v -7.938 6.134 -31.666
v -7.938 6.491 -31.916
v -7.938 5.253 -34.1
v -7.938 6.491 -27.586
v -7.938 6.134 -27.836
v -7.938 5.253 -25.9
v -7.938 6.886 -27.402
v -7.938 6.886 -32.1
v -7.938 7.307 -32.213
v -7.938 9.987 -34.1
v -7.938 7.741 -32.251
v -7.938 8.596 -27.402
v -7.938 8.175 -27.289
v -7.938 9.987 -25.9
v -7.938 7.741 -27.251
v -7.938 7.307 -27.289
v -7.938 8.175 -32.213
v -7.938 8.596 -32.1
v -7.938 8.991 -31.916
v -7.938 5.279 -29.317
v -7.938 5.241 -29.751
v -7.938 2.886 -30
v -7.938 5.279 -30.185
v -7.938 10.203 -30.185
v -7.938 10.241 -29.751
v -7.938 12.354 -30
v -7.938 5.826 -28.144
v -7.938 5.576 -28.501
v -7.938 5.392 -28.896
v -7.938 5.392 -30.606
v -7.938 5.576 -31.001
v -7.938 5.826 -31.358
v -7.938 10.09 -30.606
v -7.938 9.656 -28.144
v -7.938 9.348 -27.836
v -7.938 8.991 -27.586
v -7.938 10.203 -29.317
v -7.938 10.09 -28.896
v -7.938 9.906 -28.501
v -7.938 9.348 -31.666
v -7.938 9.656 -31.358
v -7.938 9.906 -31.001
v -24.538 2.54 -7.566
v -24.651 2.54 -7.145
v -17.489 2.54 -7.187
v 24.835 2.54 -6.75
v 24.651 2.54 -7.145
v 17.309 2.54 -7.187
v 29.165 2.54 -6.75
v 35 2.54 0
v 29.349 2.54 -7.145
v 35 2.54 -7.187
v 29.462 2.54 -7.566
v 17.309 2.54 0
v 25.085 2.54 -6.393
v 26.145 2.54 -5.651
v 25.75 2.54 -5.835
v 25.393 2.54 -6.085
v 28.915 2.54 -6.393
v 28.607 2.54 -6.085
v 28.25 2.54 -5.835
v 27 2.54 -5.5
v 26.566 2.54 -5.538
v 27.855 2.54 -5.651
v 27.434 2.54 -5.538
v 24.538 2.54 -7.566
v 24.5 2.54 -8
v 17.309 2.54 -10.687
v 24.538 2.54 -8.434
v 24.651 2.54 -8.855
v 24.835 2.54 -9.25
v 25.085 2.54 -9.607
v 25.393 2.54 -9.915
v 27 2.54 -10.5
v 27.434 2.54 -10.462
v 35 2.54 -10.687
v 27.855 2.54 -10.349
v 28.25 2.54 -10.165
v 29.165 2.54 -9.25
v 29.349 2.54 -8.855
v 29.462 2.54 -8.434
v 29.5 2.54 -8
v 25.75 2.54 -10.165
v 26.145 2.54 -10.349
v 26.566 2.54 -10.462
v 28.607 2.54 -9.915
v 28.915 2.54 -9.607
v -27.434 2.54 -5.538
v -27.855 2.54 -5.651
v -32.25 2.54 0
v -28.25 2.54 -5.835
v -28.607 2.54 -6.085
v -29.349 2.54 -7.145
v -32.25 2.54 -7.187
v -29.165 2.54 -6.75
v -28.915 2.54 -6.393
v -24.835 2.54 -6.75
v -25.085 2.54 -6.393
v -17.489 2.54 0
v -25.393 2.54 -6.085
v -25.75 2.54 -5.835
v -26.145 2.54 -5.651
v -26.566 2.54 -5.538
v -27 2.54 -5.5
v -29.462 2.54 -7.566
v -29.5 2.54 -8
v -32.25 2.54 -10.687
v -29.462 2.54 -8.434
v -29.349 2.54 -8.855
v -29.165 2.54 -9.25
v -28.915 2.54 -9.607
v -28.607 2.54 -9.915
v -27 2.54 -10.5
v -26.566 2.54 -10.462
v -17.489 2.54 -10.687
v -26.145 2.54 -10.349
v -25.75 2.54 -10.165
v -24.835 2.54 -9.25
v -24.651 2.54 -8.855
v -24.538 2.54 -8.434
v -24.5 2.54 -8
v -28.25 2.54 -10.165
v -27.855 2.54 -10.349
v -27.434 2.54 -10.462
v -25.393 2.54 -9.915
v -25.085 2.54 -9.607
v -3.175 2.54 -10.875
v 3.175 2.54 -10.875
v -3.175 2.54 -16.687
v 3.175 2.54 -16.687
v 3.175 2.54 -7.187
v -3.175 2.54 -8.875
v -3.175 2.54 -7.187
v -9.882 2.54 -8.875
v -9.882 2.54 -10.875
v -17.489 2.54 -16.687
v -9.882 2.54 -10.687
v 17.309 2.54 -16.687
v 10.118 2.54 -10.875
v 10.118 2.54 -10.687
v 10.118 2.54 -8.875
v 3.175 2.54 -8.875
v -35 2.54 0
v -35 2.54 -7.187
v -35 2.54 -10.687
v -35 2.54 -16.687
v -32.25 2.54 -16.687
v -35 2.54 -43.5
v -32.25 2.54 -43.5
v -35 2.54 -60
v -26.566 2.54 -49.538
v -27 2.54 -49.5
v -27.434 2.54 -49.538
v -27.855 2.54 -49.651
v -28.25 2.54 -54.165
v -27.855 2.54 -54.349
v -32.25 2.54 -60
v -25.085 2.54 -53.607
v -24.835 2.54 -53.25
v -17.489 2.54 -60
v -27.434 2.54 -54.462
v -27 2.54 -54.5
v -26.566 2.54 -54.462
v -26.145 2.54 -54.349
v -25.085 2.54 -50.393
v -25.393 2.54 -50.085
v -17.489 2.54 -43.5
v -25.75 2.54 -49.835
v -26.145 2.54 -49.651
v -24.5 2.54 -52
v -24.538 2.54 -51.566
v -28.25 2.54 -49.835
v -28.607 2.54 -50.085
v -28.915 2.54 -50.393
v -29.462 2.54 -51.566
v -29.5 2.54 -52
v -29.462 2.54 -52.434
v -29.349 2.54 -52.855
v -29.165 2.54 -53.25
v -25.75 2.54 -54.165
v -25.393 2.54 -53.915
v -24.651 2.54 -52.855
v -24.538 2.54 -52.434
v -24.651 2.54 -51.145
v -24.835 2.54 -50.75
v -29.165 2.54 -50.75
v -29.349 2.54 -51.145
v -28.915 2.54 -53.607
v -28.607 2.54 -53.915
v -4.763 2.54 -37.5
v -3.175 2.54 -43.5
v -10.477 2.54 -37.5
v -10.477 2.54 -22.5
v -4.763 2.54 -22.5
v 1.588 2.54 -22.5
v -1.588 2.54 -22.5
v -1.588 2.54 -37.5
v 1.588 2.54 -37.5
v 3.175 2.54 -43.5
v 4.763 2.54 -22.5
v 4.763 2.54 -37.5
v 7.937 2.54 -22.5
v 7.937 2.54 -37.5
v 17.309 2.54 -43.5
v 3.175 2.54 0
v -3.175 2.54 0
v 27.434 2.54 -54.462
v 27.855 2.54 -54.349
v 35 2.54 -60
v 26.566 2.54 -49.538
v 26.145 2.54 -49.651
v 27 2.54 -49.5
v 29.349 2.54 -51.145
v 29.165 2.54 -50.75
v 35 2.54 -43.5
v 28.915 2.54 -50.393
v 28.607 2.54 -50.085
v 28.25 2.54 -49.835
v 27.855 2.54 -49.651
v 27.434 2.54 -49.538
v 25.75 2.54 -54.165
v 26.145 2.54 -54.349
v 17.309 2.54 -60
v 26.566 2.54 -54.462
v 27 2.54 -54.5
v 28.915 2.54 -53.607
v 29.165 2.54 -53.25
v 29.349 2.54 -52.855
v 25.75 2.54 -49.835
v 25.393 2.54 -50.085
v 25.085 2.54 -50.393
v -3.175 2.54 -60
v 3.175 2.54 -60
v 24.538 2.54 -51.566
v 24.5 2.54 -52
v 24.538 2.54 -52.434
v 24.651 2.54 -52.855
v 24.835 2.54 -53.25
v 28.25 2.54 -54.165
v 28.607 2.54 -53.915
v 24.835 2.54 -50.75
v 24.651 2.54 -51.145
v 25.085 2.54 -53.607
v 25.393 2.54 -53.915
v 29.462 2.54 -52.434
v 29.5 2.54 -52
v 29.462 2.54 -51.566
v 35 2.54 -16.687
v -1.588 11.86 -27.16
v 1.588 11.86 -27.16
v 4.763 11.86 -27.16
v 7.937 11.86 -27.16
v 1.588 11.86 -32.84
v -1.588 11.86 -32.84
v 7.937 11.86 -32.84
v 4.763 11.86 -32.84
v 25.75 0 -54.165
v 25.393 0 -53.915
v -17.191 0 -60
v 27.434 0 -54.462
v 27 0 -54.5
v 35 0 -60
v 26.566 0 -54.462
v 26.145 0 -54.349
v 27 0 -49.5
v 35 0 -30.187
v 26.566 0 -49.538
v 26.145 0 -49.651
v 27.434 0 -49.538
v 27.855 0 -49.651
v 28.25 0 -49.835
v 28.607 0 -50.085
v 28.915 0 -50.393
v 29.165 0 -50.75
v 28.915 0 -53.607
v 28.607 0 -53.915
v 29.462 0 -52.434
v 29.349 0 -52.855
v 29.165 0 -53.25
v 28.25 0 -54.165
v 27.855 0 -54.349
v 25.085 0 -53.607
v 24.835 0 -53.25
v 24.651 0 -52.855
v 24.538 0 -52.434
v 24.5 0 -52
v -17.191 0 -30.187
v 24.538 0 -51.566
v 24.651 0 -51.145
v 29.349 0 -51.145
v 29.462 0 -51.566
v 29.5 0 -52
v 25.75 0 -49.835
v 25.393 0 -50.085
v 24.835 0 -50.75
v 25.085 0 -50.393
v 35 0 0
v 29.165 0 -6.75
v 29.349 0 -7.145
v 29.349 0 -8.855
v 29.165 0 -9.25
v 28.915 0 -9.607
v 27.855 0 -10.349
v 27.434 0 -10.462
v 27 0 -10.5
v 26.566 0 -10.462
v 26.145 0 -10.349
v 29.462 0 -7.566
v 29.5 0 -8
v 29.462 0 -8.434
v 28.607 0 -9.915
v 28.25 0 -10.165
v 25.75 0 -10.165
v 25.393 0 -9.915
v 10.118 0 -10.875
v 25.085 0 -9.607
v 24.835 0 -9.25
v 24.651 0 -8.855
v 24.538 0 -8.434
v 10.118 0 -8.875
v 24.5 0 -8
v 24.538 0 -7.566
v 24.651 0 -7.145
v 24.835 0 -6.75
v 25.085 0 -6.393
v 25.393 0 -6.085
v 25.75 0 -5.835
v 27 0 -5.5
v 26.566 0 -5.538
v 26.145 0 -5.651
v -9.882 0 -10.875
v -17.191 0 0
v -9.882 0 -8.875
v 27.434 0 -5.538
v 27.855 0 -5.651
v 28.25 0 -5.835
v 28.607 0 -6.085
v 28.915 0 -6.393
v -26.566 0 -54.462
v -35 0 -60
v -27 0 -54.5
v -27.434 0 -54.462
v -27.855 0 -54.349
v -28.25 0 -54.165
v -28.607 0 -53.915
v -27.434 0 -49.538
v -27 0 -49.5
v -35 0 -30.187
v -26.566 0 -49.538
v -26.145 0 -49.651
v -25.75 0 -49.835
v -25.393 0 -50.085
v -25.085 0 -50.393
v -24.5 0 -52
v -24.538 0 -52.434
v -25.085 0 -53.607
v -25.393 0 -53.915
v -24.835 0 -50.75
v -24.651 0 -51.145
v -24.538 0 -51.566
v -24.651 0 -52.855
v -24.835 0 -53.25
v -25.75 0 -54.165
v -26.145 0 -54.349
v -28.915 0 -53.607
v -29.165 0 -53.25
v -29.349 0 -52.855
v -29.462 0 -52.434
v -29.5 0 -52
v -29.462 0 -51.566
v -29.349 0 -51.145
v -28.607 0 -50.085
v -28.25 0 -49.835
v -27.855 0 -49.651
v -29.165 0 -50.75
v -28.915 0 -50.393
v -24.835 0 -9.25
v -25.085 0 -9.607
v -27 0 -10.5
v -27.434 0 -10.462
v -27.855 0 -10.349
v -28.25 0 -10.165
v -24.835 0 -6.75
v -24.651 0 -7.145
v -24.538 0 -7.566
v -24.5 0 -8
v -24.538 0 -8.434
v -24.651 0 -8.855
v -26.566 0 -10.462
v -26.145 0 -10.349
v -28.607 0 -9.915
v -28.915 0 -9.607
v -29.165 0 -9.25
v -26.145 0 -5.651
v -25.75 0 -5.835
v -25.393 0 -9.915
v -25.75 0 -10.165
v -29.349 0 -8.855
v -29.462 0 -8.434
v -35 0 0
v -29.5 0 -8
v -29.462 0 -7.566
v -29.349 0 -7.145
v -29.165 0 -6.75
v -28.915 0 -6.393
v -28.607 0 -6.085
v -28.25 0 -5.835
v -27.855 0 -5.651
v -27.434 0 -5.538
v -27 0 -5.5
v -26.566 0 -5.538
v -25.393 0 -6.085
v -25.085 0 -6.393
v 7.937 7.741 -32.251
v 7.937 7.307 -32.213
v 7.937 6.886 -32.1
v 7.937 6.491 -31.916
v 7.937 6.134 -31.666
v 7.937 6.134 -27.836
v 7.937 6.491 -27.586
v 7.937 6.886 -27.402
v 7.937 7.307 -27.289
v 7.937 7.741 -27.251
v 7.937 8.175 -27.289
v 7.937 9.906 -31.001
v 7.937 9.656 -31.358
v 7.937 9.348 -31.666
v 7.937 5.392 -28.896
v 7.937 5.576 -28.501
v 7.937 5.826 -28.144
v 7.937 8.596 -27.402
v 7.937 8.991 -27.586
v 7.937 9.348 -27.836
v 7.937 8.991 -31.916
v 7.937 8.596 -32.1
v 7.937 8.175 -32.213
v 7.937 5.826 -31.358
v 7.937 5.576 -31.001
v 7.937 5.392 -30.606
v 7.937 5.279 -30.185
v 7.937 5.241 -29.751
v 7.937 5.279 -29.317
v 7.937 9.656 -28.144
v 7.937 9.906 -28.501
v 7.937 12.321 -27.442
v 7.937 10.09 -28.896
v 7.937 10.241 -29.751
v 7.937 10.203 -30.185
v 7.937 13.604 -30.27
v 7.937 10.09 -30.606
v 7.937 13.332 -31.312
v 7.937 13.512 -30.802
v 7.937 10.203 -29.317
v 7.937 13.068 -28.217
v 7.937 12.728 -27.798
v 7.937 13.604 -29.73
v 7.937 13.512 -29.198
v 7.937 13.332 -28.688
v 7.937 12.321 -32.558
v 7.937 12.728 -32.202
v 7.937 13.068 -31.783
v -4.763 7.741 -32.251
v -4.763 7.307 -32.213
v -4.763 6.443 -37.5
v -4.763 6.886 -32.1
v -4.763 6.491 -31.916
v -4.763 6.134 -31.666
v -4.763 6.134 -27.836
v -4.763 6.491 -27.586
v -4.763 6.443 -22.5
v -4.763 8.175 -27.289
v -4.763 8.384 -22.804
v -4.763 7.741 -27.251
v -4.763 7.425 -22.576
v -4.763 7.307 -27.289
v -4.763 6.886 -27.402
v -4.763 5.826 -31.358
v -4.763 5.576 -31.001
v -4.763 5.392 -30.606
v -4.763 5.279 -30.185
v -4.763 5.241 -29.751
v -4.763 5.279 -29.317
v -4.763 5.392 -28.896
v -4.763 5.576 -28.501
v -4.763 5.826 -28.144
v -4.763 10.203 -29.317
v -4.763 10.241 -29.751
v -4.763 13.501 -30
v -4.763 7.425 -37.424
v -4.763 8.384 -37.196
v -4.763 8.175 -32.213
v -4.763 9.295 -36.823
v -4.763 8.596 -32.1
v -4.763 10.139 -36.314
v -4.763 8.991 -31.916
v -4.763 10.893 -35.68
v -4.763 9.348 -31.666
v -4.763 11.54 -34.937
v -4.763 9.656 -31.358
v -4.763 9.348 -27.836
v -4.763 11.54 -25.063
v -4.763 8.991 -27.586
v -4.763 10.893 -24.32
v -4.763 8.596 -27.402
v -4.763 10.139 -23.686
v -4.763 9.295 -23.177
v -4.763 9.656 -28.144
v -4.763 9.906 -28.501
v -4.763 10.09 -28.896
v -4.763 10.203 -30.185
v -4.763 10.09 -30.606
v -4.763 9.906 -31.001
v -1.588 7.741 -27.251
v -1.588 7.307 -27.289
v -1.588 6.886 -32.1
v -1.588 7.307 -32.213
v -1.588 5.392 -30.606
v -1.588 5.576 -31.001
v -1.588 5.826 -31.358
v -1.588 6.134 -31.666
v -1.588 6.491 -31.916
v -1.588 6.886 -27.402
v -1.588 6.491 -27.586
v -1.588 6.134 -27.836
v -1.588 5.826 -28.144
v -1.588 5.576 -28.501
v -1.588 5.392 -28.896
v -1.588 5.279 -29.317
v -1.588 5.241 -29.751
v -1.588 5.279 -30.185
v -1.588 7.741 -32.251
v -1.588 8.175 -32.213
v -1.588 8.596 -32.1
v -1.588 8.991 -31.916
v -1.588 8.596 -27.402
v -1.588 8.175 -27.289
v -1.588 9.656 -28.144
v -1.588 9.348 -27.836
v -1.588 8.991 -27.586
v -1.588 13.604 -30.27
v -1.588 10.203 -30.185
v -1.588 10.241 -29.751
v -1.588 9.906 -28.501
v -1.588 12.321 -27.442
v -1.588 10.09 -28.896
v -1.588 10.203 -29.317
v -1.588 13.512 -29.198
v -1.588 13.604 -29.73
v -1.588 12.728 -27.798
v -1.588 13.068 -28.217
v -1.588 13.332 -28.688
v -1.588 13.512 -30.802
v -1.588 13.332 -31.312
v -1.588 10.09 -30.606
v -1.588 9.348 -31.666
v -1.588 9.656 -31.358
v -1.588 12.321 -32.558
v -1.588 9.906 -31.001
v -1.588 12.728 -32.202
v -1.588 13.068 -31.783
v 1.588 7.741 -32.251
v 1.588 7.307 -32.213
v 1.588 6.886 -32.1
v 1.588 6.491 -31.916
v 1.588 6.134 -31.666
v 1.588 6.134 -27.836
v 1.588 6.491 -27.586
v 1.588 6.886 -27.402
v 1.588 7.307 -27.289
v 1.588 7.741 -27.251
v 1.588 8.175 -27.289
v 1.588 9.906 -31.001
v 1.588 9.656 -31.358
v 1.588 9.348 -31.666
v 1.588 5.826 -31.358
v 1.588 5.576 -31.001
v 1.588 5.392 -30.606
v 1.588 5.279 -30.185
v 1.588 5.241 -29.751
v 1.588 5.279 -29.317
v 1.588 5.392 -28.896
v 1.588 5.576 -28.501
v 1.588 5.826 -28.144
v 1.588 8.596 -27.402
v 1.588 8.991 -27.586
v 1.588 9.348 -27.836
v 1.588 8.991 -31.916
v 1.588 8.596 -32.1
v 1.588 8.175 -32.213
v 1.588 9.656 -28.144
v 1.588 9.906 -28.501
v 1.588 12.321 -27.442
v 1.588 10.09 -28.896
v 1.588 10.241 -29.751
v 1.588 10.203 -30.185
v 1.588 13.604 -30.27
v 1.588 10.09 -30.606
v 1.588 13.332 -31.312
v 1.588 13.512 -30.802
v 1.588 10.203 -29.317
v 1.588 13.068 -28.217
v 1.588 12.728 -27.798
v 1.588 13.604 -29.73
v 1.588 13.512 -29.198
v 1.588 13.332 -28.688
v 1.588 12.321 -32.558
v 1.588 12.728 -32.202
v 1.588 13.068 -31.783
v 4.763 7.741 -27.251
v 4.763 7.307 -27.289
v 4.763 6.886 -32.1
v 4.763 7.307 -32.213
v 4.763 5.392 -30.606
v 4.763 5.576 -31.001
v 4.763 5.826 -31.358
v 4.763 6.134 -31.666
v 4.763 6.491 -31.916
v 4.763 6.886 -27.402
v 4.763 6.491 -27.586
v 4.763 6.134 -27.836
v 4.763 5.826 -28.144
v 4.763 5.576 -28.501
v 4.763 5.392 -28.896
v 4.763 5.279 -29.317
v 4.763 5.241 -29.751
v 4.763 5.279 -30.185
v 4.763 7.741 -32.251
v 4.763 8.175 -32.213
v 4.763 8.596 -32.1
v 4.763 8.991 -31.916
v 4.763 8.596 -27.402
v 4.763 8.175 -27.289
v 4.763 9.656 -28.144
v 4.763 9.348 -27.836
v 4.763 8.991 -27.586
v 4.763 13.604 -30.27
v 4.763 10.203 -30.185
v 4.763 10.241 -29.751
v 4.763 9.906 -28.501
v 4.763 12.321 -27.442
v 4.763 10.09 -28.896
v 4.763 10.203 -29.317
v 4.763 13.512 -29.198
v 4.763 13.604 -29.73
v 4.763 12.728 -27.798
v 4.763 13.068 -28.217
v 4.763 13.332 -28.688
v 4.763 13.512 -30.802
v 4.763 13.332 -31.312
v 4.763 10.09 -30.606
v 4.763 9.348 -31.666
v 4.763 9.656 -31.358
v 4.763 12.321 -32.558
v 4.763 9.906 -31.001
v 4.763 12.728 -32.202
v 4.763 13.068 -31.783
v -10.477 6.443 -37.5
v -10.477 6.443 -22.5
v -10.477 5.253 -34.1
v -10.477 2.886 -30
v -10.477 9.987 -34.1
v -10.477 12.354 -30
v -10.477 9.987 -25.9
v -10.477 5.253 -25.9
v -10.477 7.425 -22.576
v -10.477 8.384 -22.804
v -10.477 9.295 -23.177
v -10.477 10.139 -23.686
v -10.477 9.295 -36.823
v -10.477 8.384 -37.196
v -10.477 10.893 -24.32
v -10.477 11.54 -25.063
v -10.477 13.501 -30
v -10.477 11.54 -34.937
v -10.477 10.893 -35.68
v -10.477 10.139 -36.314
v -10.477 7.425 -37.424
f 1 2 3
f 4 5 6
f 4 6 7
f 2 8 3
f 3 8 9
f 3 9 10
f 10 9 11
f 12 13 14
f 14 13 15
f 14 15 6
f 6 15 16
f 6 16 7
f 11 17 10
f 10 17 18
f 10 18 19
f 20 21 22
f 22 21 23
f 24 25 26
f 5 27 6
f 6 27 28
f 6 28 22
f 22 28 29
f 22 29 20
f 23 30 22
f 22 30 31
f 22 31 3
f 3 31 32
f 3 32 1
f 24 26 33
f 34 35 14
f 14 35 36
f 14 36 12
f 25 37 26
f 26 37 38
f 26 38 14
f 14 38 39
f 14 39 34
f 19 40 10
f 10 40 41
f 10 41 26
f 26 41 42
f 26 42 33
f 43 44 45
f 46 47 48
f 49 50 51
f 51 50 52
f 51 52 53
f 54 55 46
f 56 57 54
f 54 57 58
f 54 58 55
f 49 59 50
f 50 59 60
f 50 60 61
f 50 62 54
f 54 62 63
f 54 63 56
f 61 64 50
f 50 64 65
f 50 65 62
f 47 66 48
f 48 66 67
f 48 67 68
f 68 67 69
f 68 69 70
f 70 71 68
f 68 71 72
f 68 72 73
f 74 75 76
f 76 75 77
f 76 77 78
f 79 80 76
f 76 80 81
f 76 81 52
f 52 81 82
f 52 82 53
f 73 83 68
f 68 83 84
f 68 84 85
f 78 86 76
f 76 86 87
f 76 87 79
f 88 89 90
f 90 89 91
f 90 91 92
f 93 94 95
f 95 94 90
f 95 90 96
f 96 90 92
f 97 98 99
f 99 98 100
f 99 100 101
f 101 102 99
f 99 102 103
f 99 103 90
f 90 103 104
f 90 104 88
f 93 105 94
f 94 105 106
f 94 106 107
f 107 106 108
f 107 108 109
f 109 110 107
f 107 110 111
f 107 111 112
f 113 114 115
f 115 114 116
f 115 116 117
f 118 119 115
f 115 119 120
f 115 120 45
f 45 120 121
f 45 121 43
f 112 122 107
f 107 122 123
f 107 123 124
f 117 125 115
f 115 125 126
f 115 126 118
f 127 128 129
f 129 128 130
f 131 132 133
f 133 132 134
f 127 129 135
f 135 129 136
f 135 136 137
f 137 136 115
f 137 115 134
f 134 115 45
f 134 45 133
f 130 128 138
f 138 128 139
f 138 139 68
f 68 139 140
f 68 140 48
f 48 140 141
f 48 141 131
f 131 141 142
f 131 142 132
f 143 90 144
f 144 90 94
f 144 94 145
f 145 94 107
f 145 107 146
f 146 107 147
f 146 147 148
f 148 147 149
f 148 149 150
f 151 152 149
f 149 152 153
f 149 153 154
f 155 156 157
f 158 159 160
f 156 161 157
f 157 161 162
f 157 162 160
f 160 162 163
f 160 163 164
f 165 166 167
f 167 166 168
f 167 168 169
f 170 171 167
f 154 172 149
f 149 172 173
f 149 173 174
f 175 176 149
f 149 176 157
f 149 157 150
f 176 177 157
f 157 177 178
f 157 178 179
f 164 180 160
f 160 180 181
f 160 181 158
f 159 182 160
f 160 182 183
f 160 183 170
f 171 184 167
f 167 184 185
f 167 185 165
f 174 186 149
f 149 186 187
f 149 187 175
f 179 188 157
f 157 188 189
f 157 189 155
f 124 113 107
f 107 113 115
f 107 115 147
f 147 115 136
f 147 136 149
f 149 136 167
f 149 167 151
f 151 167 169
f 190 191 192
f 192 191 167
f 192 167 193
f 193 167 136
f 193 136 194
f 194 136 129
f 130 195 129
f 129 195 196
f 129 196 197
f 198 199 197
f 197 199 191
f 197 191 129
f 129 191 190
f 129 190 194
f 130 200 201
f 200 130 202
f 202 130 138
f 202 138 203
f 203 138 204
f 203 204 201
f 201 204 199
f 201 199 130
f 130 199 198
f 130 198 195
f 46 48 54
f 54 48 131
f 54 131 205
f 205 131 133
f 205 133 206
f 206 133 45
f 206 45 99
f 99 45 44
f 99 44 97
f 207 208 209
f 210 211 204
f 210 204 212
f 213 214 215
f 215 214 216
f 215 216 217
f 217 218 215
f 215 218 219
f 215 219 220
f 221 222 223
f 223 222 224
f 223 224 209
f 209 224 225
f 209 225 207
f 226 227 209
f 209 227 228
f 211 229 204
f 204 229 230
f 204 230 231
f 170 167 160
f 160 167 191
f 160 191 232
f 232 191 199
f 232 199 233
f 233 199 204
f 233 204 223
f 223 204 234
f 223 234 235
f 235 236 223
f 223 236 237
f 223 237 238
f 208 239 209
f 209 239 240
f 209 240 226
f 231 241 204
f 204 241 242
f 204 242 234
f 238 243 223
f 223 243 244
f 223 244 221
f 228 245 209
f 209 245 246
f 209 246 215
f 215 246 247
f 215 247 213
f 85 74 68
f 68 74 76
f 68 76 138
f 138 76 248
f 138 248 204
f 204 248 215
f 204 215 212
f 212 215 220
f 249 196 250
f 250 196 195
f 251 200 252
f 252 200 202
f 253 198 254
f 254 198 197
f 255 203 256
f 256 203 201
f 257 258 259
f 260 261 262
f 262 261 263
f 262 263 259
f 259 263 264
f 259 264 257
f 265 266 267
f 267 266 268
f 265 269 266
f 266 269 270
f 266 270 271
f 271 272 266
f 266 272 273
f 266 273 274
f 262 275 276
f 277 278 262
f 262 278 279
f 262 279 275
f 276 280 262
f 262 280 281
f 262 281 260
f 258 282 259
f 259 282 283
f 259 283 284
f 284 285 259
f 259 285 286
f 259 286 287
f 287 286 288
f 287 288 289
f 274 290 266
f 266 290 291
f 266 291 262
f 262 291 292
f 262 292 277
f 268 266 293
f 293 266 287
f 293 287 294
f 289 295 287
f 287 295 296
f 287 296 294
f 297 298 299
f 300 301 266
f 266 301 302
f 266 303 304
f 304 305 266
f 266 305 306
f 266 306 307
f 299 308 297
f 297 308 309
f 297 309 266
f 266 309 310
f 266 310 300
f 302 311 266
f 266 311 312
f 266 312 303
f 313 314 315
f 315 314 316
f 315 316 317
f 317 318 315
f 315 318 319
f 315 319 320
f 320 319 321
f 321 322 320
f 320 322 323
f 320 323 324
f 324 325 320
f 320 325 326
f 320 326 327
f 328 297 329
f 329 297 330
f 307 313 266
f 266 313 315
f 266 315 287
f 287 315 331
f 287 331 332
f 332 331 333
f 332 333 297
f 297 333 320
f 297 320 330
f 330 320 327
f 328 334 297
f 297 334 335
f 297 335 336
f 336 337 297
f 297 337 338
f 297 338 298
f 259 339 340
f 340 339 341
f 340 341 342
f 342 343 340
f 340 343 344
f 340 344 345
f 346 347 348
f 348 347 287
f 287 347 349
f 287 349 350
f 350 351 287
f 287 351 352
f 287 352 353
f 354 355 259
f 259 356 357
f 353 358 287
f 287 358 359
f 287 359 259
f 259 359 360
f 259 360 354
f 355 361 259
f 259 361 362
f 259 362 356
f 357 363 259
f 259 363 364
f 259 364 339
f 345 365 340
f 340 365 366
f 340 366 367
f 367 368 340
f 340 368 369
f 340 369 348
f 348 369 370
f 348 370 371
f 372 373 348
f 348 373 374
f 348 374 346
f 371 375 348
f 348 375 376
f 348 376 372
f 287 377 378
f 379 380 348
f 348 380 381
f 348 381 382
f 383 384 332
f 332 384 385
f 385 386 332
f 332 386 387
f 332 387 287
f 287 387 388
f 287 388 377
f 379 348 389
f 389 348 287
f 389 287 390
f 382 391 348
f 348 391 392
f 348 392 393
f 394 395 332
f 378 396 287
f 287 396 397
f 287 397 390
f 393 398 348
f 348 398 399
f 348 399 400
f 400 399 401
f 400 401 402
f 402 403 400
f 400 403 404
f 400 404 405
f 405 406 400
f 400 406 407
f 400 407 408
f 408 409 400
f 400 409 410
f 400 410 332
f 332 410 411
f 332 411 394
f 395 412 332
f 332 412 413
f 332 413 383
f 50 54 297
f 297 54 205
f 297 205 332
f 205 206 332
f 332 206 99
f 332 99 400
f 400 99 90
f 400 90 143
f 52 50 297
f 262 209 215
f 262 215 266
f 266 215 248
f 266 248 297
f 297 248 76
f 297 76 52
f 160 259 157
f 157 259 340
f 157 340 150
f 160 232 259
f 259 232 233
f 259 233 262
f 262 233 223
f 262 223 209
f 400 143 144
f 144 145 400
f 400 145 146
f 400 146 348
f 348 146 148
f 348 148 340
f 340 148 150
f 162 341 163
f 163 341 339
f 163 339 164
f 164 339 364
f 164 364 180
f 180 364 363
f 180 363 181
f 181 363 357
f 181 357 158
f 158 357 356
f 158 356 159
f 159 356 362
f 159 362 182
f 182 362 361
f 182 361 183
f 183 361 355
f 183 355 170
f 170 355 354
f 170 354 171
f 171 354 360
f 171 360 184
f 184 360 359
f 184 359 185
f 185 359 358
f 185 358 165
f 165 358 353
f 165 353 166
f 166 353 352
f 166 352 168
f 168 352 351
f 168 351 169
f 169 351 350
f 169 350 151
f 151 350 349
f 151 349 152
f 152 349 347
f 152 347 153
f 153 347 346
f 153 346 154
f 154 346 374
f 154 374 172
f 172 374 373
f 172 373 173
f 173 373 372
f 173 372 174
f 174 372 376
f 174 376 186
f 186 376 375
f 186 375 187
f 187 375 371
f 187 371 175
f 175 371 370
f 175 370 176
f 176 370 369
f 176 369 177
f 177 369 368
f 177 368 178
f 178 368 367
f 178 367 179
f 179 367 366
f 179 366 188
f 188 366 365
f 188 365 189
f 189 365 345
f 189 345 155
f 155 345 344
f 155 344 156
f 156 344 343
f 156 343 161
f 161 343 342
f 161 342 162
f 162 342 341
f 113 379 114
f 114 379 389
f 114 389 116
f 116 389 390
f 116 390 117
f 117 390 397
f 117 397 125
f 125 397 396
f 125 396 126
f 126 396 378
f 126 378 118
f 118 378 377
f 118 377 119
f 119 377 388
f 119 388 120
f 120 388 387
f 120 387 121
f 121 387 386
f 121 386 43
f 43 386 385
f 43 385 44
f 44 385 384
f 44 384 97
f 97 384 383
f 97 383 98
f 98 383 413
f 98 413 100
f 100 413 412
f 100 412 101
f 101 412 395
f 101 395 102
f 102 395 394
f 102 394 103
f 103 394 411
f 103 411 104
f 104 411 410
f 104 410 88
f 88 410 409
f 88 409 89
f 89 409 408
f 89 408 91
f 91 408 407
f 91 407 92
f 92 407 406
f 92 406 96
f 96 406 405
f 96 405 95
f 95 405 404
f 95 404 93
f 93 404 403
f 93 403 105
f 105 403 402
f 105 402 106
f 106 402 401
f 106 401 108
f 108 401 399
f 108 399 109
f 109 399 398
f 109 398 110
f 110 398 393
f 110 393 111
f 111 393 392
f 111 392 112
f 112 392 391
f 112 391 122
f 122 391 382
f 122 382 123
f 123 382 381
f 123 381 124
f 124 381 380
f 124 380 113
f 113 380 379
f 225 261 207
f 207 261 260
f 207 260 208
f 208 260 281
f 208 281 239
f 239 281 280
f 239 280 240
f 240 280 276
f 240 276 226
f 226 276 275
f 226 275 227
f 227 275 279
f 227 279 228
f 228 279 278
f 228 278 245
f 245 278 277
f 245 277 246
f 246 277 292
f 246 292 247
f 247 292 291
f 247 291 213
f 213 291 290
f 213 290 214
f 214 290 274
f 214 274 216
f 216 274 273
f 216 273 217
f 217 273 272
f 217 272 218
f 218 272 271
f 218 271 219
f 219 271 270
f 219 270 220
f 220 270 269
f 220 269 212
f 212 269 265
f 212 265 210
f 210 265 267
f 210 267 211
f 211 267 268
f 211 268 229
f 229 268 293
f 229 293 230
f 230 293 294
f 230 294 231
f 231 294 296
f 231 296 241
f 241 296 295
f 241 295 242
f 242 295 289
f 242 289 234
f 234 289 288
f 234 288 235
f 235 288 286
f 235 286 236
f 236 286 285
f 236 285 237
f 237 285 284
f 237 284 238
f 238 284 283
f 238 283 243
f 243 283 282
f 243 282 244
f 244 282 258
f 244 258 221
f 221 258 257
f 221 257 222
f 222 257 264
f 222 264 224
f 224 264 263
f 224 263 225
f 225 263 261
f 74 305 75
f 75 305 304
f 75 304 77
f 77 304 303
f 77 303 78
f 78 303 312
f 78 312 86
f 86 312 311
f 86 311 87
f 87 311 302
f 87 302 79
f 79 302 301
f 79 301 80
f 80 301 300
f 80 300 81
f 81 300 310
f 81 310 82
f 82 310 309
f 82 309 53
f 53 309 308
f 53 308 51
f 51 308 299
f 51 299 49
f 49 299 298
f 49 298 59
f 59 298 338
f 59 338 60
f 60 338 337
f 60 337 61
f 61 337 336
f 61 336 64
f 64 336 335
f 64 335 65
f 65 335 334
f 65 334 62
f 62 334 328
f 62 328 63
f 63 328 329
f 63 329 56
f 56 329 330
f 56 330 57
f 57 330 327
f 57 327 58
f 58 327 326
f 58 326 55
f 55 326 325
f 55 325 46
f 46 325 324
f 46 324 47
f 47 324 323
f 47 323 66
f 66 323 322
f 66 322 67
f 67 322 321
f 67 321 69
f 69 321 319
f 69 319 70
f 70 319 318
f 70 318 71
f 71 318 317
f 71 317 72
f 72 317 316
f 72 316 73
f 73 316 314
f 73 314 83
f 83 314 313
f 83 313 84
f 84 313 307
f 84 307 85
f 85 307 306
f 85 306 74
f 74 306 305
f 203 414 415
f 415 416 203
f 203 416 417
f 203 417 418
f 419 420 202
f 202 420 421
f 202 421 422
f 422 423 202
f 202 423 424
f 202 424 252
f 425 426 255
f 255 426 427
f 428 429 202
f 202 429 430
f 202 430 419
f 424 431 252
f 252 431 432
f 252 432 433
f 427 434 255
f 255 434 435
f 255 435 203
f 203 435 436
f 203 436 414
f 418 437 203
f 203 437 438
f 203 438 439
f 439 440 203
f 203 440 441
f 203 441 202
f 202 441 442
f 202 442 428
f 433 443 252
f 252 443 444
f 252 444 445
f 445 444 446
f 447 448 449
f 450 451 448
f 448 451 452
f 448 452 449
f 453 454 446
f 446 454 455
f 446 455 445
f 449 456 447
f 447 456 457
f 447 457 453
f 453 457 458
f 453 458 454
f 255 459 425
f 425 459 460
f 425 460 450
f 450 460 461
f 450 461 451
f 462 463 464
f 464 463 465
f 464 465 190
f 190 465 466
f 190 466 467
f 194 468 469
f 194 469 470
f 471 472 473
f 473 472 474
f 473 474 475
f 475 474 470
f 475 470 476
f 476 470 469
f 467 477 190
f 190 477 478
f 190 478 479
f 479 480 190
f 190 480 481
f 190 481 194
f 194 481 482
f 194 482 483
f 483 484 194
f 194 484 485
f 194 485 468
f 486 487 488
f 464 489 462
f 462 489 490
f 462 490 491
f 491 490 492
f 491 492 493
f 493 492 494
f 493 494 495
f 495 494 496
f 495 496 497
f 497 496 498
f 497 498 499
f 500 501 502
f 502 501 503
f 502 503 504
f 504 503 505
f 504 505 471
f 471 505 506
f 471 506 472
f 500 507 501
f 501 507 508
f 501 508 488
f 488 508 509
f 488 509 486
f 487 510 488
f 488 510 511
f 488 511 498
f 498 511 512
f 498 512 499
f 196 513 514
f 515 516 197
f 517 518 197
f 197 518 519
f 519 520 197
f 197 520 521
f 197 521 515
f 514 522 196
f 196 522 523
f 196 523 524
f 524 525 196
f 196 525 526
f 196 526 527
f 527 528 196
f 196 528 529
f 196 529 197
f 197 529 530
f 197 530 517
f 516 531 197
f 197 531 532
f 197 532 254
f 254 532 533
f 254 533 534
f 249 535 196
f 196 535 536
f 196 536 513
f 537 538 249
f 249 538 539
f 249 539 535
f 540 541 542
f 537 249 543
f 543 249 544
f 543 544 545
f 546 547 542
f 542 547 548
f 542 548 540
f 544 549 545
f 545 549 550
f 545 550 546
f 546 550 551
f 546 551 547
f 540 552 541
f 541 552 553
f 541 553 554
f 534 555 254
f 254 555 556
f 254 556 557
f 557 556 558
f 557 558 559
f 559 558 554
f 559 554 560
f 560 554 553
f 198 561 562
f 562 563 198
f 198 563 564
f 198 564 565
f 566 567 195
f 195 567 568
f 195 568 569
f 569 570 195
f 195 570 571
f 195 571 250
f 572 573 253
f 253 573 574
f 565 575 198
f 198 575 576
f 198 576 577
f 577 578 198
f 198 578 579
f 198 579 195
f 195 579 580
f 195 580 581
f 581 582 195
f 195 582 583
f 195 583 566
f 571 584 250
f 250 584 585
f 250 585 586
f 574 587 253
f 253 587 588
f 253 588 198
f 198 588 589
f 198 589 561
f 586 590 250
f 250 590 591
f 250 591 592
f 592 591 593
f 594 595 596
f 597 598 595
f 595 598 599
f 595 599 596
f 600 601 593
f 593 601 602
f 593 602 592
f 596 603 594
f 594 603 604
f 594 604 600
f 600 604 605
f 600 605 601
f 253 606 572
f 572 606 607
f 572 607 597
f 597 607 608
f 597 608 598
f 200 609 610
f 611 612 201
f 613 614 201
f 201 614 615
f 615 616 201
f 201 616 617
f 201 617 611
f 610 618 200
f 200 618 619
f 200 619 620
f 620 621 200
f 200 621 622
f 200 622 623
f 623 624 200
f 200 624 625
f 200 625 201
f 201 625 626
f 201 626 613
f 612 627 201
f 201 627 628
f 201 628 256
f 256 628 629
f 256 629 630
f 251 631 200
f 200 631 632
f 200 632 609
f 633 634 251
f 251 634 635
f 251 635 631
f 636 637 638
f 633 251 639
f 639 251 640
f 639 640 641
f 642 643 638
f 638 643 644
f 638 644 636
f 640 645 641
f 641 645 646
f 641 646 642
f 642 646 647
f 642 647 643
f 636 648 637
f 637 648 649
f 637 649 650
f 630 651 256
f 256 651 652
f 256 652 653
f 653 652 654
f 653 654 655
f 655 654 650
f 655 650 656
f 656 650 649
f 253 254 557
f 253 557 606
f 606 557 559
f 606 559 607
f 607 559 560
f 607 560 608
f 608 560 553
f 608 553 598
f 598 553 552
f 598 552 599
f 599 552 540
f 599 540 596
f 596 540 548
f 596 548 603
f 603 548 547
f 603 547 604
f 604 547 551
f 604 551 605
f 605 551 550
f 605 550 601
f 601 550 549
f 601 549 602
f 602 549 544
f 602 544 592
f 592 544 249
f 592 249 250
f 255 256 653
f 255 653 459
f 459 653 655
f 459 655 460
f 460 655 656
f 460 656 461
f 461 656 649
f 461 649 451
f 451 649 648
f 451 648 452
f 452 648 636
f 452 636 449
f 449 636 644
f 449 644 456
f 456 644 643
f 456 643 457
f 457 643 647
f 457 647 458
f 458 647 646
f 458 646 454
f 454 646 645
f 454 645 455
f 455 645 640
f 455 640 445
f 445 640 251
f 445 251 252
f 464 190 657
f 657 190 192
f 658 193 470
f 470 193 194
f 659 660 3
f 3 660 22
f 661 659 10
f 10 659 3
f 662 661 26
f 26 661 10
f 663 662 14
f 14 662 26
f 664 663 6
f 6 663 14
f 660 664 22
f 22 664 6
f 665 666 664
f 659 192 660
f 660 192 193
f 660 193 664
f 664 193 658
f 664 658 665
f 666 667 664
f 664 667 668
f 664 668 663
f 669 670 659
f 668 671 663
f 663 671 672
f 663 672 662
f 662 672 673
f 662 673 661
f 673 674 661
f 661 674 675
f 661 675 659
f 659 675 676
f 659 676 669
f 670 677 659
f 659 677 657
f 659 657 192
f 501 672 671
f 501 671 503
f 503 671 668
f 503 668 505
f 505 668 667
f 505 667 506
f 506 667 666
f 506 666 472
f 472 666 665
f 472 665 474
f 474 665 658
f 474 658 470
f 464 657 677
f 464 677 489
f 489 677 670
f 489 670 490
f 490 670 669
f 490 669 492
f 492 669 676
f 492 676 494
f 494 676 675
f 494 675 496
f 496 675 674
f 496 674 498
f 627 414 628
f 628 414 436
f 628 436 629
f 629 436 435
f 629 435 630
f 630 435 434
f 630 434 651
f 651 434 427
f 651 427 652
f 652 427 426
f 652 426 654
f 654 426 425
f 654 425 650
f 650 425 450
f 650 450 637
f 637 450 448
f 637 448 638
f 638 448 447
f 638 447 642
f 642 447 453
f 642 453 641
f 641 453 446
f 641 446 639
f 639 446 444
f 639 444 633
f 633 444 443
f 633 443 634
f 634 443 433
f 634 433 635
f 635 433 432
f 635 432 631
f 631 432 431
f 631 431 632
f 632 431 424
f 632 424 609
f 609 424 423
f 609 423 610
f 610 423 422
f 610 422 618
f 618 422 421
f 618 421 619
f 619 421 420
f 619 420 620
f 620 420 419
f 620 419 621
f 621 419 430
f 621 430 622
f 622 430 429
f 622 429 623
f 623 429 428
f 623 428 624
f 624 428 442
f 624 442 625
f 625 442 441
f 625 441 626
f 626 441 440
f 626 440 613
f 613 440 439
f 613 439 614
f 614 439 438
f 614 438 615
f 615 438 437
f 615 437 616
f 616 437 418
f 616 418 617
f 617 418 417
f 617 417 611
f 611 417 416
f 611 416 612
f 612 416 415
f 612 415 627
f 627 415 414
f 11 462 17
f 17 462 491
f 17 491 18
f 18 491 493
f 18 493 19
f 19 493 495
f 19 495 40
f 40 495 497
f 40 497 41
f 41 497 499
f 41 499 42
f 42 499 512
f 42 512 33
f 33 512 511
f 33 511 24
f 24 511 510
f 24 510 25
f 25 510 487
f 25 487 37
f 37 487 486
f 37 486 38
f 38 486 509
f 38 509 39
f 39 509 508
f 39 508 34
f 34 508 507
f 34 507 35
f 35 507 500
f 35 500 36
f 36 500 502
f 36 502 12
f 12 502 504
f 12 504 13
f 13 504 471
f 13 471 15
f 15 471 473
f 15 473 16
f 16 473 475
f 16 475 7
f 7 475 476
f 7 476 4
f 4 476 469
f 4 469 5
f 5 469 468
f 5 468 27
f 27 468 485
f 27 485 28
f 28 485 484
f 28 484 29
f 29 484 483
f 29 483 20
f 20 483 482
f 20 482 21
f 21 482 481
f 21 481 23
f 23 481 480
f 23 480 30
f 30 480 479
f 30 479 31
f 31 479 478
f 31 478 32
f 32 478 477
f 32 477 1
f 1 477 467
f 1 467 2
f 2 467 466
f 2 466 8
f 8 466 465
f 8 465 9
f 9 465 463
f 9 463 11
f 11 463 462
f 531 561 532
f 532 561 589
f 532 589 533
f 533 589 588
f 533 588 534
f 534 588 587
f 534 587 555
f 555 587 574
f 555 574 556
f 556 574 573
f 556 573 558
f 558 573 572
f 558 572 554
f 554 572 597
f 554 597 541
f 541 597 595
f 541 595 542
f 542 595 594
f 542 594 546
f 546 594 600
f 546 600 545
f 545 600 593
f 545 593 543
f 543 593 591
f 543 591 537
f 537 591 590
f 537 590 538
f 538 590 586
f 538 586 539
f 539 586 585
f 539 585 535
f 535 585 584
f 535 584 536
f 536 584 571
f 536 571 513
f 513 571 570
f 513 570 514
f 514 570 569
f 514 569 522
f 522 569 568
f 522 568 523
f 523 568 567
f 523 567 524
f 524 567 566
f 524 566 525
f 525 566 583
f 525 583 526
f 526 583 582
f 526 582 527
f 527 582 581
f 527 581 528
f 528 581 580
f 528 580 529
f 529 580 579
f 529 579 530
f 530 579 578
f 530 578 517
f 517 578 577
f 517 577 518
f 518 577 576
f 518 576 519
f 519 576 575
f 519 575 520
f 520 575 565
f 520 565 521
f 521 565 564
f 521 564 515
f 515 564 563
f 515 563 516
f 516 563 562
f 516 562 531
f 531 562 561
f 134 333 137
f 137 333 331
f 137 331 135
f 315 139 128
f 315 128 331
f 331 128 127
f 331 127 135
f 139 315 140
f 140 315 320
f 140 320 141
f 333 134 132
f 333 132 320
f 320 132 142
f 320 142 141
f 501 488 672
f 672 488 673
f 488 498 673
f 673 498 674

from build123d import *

# Parameters (mm, degrees)
SKETCH1_W                 = 70
SKETCH1_H                 = 60
SKETCH1_R                 = 2.5
BOSS_EXTRUDE1_DEPTH       = 2.54
SKETCH2_R                 = 1.651
BOSS_EXTRUDE2_DEPTH       = 7.9375
SKETCH3_W                 = 3.175
SKETCH3_H                 = 15
CUT_EXTRUDE1_DEPTH        = 15
FILLET1_R                 = 3.175
SKETCH6_W                 = 15
SKETCH6_H                 = 10.16
SKETCH6_R                 = 1.651
BOSS_EXTRUDE5_DEPTH       = 3.175
BOSS_EXTRUDE6_DEPTH       = 2.54
FILLET2_R                 = 6.35
F_5_0MM_DOWEL_HOLE1_D     = 5
F_5_0MM_DOWEL_HOLE1_DEPTH = 20
F_5_0MM_DOWEL_HOLE1_TIP   = 1.502151548
SKETCH10_W                = 20
SKETCH10_H                = 2
CUT_EXTRUDE2_DEPTH        = 10
BOSS_EXTRUDE8_DEPTH       = 2.54
CUT_EXTRUDE3_START        = -6.35
CUT_EXTRUDE3_DEPTH        = 6.35


with BuildPart() as part:
    # Sketch1 → Boss-Extrude1 (new body)
    with BuildSketch(Plane(origin=(0, 0, 0), x_dir=(1, 0, 0), z_dir=(0, 1, 0))):
        with Locations((0, 30)):
            Rectangle(SKETCH1_W, SKETCH1_H)
        with Locations(Location((-27, 52, 0), (0, 0, 270))):
            Circle(SKETCH1_R, mode=Mode.SUBTRACT)
        with Locations(Location((-27, 8, 0), (0, 0, 270))):
            Circle(SKETCH1_R, mode=Mode.SUBTRACT)
        with Locations(Location((27, 52, 0), (0, 0, 270))):
            Circle(SKETCH1_R, mode=Mode.SUBTRACT)
        with Locations(Location((27, 8, 0), (0, 0, 270))):
            Circle(SKETCH1_R, mode=Mode.SUBTRACT)
    extrude(amount=BOSS_EXTRUDE1_DEPTH)

    # Sketch2 → Boss-Extrude2 (add, symmetric)
    with BuildSketch(Plane(origin=(0, 0, 0), x_dir=(0, 0, -1), z_dir=(1, 0, 0))):
        Polygon((37.5, 2.54), (30, 17.54), (22.5, 2.54), align=None)
        with Locations((30, 7.62)):
            Circle(SKETCH2_R, mode=Mode.SUBTRACT)
    extrude(amount=BOSS_EXTRUDE2_DEPTH, both=True)

    # Sketch3 → Cut-Extrude1 (cut)
    with BuildSketch(Plane(origin=(0, 2.54, 0), x_dir=(1, 0, 0), z_dir=(0, 1, 0))):
        with Locations((-3.175, 30)):
            Rectangle(SKETCH3_W, SKETCH3_H)
        with Locations((3.175, 30)):
            Rectangle(SKETCH3_W, SKETCH3_H)
    extrude(amount=CUT_EXTRUDE1_DEPTH, mode=Mode.SUBTRACT)

    # Fillet1
    fillet1_edges = [part.edges().sort_by_distance(p)[0] for p in [
        (6.35, 17.54, -30),
        (-6.35, 17.54, -30),
        (0, 17.54, -30),
    ]]
    fillet(fillet1_edges, radius=FILLET1_R)

    # Sketch6 → Boss-Extrude5 (add)
    with BuildSketch(Plane.ZY.offset(7.9375)):
        with Locations((-30, 7.62)):
            Rectangle(SKETCH6_W, SKETCH6_H)
        with Locations((-30, 7.62)):
            Circle(SKETCH6_R, mode=Mode.SUBTRACT)
    extrude(amount=-BOSS_EXTRUDE5_DEPTH)

    # Sketch4 → Boss-Extrude6 (add)
    with BuildSketch(Plane.ZY.offset(7.9375)):
        Polygon((-37.5, 11.54), (-37.5, 2.54), (-22.5, 2.54), (-22.5, 11.54), (-28.589639166, 11.54), (-25.9, 9.987136104), (-25.9, 5.252863896), (-30, 2.885727793), (-34.1, 5.252863896), (-34.1, 9.987136104), (-31.410360834, 11.54), align=None)
    extrude(amount=BOSS_EXTRUDE6_DEPTH)

    # Fillet2
    # the kernel refuses this fillet: 6.35 mm, written as the material it takes off along each edge
    with BuildSketch(Plane(origin=(-23.580984977, 12.7, -22.5), x_dir=(0, 0, -1), z_dir=(1, 0, 0))) as fillet2_piece_1:
        with BuildLine():
            CenterArc((6.35, -6.257393991), FILLET2_R, 99.79714572, 80.202854281)
            Line((0, -6.257393991), (-0.127, -6.257393991))
            Line((-0.127, -6.257393991), (-0.127, 0))
            Line((-0.127, 0), (0, 0.127))
            ThreePointArc((0, 0.127), (2.634740701, 0.127), (5.247871029, 0.12514788))
            Line((5.247871029, 0.12514788), (5.269481401, 0))
        make_face()
    extrude(amount=34.461969954, mode=Mode.SUBTRACT)
    with BuildSketch(Plane(origin=(-23.580984977, 12.7, -37.5), x_dir=(0, 0, 1), z_dir=(1, 0, 0))) as fillet2_piece_2:
        with BuildLine():
            CenterArc((6.35, 6.257393991), FILLET2_R, 180, 80.202854281)
            Line((0, 6.257393991), (-0.127, 6.257393991))
            Line((-0.127, 6.257393991), (-0.127, 0))
            Line((-0.127, 0), (0, -0.127))
            ThreePointArc((0, -0.127), (2.634740701, -0.127), (5.247871029, -0.12514788))
            Line((5.247871029, -0.12514788), (5.269481401, 0))
        make_face()
    extrude(amount=34.461969954, mode=Mode.SUBTRACT)

    # Ø5.0mm Dowel Hole1
    with Locations(Plane(origin=(7.9375, 0, 0), x_dir=(0, 0, -1), z_dir=(1, 0, 0))):
        with Locations((29.751144641, 7.740920916)):
            Hole(F_5_0MM_DOWEL_HOLE1_D / 2, depth=F_5_0MM_DOWEL_HOLE1_DEPTH)
            with Locations((0, 0, -(F_5_0MM_DOWEL_HOLE1_DEPTH + F_5_0MM_DOWEL_HOLE1_TIP / 2))):  # 118° drill point
                Cone(0, F_5_0MM_DOWEL_HOLE1_D / 2, F_5_0MM_DOWEL_HOLE1_TIP, mode=Mode.SUBTRACT)

    # Sketch10 → Cut-Extrude2 (cut)
    with BuildSketch(Plane(origin=(0, 2.54, 0), x_dir=(1, 0, 0), z_dir=(0, 1, 0))):
        with Locations((0.117809829, 9.874502057)):
            Rectangle(SKETCH10_W, SKETCH10_H)
    extrude(amount=-CUT_EXTRUDE2_DEPTH, mode=Mode.SUBTRACT)

    # Sketch12 → Boss-Extrude8 (add)
    with BuildSketch(Plane.ZY.offset(7.9375)):
        Polygon((-31.410360834, 11.54), (-30, 12.354272207), (-28.589639166, 11.54), (-25.063302956, 11.54), (-30, 13.500615067), (-34.936697044, 11.54), align=None)
    extrude(amount=BOSS_EXTRUDE8_DEPTH)

    # Sketch13 → Cut-Extrude3 (cut)
    with BuildSketch(Plane.ZY.offset(7.9375).offset(CUT_EXTRUDE3_START)):
        with BuildLine():
            Line((-34.936697044, 11.54), (-30, 13.500615067))
            Line((-30, 13.500615067), (-25.063302956, 11.54))
            ThreePointArc((-25.063302956, 11.54), (-26.34823122, 12.279013549), (-27.769481401, 12.7))
            ThreePointArc((-27.769481401, 12.7), (-30, 13.615484171), (-32.230518599, 12.7))
            ThreePointArc((-32.230518599, 12.7), (-33.65176878, 12.279013549), (-34.936697044, 11.54))
        make_face()
    extrude(amount=CUT_EXTRUDE3_DEPTH, mode=Mode.SUBTRACT)


solid = part.part
